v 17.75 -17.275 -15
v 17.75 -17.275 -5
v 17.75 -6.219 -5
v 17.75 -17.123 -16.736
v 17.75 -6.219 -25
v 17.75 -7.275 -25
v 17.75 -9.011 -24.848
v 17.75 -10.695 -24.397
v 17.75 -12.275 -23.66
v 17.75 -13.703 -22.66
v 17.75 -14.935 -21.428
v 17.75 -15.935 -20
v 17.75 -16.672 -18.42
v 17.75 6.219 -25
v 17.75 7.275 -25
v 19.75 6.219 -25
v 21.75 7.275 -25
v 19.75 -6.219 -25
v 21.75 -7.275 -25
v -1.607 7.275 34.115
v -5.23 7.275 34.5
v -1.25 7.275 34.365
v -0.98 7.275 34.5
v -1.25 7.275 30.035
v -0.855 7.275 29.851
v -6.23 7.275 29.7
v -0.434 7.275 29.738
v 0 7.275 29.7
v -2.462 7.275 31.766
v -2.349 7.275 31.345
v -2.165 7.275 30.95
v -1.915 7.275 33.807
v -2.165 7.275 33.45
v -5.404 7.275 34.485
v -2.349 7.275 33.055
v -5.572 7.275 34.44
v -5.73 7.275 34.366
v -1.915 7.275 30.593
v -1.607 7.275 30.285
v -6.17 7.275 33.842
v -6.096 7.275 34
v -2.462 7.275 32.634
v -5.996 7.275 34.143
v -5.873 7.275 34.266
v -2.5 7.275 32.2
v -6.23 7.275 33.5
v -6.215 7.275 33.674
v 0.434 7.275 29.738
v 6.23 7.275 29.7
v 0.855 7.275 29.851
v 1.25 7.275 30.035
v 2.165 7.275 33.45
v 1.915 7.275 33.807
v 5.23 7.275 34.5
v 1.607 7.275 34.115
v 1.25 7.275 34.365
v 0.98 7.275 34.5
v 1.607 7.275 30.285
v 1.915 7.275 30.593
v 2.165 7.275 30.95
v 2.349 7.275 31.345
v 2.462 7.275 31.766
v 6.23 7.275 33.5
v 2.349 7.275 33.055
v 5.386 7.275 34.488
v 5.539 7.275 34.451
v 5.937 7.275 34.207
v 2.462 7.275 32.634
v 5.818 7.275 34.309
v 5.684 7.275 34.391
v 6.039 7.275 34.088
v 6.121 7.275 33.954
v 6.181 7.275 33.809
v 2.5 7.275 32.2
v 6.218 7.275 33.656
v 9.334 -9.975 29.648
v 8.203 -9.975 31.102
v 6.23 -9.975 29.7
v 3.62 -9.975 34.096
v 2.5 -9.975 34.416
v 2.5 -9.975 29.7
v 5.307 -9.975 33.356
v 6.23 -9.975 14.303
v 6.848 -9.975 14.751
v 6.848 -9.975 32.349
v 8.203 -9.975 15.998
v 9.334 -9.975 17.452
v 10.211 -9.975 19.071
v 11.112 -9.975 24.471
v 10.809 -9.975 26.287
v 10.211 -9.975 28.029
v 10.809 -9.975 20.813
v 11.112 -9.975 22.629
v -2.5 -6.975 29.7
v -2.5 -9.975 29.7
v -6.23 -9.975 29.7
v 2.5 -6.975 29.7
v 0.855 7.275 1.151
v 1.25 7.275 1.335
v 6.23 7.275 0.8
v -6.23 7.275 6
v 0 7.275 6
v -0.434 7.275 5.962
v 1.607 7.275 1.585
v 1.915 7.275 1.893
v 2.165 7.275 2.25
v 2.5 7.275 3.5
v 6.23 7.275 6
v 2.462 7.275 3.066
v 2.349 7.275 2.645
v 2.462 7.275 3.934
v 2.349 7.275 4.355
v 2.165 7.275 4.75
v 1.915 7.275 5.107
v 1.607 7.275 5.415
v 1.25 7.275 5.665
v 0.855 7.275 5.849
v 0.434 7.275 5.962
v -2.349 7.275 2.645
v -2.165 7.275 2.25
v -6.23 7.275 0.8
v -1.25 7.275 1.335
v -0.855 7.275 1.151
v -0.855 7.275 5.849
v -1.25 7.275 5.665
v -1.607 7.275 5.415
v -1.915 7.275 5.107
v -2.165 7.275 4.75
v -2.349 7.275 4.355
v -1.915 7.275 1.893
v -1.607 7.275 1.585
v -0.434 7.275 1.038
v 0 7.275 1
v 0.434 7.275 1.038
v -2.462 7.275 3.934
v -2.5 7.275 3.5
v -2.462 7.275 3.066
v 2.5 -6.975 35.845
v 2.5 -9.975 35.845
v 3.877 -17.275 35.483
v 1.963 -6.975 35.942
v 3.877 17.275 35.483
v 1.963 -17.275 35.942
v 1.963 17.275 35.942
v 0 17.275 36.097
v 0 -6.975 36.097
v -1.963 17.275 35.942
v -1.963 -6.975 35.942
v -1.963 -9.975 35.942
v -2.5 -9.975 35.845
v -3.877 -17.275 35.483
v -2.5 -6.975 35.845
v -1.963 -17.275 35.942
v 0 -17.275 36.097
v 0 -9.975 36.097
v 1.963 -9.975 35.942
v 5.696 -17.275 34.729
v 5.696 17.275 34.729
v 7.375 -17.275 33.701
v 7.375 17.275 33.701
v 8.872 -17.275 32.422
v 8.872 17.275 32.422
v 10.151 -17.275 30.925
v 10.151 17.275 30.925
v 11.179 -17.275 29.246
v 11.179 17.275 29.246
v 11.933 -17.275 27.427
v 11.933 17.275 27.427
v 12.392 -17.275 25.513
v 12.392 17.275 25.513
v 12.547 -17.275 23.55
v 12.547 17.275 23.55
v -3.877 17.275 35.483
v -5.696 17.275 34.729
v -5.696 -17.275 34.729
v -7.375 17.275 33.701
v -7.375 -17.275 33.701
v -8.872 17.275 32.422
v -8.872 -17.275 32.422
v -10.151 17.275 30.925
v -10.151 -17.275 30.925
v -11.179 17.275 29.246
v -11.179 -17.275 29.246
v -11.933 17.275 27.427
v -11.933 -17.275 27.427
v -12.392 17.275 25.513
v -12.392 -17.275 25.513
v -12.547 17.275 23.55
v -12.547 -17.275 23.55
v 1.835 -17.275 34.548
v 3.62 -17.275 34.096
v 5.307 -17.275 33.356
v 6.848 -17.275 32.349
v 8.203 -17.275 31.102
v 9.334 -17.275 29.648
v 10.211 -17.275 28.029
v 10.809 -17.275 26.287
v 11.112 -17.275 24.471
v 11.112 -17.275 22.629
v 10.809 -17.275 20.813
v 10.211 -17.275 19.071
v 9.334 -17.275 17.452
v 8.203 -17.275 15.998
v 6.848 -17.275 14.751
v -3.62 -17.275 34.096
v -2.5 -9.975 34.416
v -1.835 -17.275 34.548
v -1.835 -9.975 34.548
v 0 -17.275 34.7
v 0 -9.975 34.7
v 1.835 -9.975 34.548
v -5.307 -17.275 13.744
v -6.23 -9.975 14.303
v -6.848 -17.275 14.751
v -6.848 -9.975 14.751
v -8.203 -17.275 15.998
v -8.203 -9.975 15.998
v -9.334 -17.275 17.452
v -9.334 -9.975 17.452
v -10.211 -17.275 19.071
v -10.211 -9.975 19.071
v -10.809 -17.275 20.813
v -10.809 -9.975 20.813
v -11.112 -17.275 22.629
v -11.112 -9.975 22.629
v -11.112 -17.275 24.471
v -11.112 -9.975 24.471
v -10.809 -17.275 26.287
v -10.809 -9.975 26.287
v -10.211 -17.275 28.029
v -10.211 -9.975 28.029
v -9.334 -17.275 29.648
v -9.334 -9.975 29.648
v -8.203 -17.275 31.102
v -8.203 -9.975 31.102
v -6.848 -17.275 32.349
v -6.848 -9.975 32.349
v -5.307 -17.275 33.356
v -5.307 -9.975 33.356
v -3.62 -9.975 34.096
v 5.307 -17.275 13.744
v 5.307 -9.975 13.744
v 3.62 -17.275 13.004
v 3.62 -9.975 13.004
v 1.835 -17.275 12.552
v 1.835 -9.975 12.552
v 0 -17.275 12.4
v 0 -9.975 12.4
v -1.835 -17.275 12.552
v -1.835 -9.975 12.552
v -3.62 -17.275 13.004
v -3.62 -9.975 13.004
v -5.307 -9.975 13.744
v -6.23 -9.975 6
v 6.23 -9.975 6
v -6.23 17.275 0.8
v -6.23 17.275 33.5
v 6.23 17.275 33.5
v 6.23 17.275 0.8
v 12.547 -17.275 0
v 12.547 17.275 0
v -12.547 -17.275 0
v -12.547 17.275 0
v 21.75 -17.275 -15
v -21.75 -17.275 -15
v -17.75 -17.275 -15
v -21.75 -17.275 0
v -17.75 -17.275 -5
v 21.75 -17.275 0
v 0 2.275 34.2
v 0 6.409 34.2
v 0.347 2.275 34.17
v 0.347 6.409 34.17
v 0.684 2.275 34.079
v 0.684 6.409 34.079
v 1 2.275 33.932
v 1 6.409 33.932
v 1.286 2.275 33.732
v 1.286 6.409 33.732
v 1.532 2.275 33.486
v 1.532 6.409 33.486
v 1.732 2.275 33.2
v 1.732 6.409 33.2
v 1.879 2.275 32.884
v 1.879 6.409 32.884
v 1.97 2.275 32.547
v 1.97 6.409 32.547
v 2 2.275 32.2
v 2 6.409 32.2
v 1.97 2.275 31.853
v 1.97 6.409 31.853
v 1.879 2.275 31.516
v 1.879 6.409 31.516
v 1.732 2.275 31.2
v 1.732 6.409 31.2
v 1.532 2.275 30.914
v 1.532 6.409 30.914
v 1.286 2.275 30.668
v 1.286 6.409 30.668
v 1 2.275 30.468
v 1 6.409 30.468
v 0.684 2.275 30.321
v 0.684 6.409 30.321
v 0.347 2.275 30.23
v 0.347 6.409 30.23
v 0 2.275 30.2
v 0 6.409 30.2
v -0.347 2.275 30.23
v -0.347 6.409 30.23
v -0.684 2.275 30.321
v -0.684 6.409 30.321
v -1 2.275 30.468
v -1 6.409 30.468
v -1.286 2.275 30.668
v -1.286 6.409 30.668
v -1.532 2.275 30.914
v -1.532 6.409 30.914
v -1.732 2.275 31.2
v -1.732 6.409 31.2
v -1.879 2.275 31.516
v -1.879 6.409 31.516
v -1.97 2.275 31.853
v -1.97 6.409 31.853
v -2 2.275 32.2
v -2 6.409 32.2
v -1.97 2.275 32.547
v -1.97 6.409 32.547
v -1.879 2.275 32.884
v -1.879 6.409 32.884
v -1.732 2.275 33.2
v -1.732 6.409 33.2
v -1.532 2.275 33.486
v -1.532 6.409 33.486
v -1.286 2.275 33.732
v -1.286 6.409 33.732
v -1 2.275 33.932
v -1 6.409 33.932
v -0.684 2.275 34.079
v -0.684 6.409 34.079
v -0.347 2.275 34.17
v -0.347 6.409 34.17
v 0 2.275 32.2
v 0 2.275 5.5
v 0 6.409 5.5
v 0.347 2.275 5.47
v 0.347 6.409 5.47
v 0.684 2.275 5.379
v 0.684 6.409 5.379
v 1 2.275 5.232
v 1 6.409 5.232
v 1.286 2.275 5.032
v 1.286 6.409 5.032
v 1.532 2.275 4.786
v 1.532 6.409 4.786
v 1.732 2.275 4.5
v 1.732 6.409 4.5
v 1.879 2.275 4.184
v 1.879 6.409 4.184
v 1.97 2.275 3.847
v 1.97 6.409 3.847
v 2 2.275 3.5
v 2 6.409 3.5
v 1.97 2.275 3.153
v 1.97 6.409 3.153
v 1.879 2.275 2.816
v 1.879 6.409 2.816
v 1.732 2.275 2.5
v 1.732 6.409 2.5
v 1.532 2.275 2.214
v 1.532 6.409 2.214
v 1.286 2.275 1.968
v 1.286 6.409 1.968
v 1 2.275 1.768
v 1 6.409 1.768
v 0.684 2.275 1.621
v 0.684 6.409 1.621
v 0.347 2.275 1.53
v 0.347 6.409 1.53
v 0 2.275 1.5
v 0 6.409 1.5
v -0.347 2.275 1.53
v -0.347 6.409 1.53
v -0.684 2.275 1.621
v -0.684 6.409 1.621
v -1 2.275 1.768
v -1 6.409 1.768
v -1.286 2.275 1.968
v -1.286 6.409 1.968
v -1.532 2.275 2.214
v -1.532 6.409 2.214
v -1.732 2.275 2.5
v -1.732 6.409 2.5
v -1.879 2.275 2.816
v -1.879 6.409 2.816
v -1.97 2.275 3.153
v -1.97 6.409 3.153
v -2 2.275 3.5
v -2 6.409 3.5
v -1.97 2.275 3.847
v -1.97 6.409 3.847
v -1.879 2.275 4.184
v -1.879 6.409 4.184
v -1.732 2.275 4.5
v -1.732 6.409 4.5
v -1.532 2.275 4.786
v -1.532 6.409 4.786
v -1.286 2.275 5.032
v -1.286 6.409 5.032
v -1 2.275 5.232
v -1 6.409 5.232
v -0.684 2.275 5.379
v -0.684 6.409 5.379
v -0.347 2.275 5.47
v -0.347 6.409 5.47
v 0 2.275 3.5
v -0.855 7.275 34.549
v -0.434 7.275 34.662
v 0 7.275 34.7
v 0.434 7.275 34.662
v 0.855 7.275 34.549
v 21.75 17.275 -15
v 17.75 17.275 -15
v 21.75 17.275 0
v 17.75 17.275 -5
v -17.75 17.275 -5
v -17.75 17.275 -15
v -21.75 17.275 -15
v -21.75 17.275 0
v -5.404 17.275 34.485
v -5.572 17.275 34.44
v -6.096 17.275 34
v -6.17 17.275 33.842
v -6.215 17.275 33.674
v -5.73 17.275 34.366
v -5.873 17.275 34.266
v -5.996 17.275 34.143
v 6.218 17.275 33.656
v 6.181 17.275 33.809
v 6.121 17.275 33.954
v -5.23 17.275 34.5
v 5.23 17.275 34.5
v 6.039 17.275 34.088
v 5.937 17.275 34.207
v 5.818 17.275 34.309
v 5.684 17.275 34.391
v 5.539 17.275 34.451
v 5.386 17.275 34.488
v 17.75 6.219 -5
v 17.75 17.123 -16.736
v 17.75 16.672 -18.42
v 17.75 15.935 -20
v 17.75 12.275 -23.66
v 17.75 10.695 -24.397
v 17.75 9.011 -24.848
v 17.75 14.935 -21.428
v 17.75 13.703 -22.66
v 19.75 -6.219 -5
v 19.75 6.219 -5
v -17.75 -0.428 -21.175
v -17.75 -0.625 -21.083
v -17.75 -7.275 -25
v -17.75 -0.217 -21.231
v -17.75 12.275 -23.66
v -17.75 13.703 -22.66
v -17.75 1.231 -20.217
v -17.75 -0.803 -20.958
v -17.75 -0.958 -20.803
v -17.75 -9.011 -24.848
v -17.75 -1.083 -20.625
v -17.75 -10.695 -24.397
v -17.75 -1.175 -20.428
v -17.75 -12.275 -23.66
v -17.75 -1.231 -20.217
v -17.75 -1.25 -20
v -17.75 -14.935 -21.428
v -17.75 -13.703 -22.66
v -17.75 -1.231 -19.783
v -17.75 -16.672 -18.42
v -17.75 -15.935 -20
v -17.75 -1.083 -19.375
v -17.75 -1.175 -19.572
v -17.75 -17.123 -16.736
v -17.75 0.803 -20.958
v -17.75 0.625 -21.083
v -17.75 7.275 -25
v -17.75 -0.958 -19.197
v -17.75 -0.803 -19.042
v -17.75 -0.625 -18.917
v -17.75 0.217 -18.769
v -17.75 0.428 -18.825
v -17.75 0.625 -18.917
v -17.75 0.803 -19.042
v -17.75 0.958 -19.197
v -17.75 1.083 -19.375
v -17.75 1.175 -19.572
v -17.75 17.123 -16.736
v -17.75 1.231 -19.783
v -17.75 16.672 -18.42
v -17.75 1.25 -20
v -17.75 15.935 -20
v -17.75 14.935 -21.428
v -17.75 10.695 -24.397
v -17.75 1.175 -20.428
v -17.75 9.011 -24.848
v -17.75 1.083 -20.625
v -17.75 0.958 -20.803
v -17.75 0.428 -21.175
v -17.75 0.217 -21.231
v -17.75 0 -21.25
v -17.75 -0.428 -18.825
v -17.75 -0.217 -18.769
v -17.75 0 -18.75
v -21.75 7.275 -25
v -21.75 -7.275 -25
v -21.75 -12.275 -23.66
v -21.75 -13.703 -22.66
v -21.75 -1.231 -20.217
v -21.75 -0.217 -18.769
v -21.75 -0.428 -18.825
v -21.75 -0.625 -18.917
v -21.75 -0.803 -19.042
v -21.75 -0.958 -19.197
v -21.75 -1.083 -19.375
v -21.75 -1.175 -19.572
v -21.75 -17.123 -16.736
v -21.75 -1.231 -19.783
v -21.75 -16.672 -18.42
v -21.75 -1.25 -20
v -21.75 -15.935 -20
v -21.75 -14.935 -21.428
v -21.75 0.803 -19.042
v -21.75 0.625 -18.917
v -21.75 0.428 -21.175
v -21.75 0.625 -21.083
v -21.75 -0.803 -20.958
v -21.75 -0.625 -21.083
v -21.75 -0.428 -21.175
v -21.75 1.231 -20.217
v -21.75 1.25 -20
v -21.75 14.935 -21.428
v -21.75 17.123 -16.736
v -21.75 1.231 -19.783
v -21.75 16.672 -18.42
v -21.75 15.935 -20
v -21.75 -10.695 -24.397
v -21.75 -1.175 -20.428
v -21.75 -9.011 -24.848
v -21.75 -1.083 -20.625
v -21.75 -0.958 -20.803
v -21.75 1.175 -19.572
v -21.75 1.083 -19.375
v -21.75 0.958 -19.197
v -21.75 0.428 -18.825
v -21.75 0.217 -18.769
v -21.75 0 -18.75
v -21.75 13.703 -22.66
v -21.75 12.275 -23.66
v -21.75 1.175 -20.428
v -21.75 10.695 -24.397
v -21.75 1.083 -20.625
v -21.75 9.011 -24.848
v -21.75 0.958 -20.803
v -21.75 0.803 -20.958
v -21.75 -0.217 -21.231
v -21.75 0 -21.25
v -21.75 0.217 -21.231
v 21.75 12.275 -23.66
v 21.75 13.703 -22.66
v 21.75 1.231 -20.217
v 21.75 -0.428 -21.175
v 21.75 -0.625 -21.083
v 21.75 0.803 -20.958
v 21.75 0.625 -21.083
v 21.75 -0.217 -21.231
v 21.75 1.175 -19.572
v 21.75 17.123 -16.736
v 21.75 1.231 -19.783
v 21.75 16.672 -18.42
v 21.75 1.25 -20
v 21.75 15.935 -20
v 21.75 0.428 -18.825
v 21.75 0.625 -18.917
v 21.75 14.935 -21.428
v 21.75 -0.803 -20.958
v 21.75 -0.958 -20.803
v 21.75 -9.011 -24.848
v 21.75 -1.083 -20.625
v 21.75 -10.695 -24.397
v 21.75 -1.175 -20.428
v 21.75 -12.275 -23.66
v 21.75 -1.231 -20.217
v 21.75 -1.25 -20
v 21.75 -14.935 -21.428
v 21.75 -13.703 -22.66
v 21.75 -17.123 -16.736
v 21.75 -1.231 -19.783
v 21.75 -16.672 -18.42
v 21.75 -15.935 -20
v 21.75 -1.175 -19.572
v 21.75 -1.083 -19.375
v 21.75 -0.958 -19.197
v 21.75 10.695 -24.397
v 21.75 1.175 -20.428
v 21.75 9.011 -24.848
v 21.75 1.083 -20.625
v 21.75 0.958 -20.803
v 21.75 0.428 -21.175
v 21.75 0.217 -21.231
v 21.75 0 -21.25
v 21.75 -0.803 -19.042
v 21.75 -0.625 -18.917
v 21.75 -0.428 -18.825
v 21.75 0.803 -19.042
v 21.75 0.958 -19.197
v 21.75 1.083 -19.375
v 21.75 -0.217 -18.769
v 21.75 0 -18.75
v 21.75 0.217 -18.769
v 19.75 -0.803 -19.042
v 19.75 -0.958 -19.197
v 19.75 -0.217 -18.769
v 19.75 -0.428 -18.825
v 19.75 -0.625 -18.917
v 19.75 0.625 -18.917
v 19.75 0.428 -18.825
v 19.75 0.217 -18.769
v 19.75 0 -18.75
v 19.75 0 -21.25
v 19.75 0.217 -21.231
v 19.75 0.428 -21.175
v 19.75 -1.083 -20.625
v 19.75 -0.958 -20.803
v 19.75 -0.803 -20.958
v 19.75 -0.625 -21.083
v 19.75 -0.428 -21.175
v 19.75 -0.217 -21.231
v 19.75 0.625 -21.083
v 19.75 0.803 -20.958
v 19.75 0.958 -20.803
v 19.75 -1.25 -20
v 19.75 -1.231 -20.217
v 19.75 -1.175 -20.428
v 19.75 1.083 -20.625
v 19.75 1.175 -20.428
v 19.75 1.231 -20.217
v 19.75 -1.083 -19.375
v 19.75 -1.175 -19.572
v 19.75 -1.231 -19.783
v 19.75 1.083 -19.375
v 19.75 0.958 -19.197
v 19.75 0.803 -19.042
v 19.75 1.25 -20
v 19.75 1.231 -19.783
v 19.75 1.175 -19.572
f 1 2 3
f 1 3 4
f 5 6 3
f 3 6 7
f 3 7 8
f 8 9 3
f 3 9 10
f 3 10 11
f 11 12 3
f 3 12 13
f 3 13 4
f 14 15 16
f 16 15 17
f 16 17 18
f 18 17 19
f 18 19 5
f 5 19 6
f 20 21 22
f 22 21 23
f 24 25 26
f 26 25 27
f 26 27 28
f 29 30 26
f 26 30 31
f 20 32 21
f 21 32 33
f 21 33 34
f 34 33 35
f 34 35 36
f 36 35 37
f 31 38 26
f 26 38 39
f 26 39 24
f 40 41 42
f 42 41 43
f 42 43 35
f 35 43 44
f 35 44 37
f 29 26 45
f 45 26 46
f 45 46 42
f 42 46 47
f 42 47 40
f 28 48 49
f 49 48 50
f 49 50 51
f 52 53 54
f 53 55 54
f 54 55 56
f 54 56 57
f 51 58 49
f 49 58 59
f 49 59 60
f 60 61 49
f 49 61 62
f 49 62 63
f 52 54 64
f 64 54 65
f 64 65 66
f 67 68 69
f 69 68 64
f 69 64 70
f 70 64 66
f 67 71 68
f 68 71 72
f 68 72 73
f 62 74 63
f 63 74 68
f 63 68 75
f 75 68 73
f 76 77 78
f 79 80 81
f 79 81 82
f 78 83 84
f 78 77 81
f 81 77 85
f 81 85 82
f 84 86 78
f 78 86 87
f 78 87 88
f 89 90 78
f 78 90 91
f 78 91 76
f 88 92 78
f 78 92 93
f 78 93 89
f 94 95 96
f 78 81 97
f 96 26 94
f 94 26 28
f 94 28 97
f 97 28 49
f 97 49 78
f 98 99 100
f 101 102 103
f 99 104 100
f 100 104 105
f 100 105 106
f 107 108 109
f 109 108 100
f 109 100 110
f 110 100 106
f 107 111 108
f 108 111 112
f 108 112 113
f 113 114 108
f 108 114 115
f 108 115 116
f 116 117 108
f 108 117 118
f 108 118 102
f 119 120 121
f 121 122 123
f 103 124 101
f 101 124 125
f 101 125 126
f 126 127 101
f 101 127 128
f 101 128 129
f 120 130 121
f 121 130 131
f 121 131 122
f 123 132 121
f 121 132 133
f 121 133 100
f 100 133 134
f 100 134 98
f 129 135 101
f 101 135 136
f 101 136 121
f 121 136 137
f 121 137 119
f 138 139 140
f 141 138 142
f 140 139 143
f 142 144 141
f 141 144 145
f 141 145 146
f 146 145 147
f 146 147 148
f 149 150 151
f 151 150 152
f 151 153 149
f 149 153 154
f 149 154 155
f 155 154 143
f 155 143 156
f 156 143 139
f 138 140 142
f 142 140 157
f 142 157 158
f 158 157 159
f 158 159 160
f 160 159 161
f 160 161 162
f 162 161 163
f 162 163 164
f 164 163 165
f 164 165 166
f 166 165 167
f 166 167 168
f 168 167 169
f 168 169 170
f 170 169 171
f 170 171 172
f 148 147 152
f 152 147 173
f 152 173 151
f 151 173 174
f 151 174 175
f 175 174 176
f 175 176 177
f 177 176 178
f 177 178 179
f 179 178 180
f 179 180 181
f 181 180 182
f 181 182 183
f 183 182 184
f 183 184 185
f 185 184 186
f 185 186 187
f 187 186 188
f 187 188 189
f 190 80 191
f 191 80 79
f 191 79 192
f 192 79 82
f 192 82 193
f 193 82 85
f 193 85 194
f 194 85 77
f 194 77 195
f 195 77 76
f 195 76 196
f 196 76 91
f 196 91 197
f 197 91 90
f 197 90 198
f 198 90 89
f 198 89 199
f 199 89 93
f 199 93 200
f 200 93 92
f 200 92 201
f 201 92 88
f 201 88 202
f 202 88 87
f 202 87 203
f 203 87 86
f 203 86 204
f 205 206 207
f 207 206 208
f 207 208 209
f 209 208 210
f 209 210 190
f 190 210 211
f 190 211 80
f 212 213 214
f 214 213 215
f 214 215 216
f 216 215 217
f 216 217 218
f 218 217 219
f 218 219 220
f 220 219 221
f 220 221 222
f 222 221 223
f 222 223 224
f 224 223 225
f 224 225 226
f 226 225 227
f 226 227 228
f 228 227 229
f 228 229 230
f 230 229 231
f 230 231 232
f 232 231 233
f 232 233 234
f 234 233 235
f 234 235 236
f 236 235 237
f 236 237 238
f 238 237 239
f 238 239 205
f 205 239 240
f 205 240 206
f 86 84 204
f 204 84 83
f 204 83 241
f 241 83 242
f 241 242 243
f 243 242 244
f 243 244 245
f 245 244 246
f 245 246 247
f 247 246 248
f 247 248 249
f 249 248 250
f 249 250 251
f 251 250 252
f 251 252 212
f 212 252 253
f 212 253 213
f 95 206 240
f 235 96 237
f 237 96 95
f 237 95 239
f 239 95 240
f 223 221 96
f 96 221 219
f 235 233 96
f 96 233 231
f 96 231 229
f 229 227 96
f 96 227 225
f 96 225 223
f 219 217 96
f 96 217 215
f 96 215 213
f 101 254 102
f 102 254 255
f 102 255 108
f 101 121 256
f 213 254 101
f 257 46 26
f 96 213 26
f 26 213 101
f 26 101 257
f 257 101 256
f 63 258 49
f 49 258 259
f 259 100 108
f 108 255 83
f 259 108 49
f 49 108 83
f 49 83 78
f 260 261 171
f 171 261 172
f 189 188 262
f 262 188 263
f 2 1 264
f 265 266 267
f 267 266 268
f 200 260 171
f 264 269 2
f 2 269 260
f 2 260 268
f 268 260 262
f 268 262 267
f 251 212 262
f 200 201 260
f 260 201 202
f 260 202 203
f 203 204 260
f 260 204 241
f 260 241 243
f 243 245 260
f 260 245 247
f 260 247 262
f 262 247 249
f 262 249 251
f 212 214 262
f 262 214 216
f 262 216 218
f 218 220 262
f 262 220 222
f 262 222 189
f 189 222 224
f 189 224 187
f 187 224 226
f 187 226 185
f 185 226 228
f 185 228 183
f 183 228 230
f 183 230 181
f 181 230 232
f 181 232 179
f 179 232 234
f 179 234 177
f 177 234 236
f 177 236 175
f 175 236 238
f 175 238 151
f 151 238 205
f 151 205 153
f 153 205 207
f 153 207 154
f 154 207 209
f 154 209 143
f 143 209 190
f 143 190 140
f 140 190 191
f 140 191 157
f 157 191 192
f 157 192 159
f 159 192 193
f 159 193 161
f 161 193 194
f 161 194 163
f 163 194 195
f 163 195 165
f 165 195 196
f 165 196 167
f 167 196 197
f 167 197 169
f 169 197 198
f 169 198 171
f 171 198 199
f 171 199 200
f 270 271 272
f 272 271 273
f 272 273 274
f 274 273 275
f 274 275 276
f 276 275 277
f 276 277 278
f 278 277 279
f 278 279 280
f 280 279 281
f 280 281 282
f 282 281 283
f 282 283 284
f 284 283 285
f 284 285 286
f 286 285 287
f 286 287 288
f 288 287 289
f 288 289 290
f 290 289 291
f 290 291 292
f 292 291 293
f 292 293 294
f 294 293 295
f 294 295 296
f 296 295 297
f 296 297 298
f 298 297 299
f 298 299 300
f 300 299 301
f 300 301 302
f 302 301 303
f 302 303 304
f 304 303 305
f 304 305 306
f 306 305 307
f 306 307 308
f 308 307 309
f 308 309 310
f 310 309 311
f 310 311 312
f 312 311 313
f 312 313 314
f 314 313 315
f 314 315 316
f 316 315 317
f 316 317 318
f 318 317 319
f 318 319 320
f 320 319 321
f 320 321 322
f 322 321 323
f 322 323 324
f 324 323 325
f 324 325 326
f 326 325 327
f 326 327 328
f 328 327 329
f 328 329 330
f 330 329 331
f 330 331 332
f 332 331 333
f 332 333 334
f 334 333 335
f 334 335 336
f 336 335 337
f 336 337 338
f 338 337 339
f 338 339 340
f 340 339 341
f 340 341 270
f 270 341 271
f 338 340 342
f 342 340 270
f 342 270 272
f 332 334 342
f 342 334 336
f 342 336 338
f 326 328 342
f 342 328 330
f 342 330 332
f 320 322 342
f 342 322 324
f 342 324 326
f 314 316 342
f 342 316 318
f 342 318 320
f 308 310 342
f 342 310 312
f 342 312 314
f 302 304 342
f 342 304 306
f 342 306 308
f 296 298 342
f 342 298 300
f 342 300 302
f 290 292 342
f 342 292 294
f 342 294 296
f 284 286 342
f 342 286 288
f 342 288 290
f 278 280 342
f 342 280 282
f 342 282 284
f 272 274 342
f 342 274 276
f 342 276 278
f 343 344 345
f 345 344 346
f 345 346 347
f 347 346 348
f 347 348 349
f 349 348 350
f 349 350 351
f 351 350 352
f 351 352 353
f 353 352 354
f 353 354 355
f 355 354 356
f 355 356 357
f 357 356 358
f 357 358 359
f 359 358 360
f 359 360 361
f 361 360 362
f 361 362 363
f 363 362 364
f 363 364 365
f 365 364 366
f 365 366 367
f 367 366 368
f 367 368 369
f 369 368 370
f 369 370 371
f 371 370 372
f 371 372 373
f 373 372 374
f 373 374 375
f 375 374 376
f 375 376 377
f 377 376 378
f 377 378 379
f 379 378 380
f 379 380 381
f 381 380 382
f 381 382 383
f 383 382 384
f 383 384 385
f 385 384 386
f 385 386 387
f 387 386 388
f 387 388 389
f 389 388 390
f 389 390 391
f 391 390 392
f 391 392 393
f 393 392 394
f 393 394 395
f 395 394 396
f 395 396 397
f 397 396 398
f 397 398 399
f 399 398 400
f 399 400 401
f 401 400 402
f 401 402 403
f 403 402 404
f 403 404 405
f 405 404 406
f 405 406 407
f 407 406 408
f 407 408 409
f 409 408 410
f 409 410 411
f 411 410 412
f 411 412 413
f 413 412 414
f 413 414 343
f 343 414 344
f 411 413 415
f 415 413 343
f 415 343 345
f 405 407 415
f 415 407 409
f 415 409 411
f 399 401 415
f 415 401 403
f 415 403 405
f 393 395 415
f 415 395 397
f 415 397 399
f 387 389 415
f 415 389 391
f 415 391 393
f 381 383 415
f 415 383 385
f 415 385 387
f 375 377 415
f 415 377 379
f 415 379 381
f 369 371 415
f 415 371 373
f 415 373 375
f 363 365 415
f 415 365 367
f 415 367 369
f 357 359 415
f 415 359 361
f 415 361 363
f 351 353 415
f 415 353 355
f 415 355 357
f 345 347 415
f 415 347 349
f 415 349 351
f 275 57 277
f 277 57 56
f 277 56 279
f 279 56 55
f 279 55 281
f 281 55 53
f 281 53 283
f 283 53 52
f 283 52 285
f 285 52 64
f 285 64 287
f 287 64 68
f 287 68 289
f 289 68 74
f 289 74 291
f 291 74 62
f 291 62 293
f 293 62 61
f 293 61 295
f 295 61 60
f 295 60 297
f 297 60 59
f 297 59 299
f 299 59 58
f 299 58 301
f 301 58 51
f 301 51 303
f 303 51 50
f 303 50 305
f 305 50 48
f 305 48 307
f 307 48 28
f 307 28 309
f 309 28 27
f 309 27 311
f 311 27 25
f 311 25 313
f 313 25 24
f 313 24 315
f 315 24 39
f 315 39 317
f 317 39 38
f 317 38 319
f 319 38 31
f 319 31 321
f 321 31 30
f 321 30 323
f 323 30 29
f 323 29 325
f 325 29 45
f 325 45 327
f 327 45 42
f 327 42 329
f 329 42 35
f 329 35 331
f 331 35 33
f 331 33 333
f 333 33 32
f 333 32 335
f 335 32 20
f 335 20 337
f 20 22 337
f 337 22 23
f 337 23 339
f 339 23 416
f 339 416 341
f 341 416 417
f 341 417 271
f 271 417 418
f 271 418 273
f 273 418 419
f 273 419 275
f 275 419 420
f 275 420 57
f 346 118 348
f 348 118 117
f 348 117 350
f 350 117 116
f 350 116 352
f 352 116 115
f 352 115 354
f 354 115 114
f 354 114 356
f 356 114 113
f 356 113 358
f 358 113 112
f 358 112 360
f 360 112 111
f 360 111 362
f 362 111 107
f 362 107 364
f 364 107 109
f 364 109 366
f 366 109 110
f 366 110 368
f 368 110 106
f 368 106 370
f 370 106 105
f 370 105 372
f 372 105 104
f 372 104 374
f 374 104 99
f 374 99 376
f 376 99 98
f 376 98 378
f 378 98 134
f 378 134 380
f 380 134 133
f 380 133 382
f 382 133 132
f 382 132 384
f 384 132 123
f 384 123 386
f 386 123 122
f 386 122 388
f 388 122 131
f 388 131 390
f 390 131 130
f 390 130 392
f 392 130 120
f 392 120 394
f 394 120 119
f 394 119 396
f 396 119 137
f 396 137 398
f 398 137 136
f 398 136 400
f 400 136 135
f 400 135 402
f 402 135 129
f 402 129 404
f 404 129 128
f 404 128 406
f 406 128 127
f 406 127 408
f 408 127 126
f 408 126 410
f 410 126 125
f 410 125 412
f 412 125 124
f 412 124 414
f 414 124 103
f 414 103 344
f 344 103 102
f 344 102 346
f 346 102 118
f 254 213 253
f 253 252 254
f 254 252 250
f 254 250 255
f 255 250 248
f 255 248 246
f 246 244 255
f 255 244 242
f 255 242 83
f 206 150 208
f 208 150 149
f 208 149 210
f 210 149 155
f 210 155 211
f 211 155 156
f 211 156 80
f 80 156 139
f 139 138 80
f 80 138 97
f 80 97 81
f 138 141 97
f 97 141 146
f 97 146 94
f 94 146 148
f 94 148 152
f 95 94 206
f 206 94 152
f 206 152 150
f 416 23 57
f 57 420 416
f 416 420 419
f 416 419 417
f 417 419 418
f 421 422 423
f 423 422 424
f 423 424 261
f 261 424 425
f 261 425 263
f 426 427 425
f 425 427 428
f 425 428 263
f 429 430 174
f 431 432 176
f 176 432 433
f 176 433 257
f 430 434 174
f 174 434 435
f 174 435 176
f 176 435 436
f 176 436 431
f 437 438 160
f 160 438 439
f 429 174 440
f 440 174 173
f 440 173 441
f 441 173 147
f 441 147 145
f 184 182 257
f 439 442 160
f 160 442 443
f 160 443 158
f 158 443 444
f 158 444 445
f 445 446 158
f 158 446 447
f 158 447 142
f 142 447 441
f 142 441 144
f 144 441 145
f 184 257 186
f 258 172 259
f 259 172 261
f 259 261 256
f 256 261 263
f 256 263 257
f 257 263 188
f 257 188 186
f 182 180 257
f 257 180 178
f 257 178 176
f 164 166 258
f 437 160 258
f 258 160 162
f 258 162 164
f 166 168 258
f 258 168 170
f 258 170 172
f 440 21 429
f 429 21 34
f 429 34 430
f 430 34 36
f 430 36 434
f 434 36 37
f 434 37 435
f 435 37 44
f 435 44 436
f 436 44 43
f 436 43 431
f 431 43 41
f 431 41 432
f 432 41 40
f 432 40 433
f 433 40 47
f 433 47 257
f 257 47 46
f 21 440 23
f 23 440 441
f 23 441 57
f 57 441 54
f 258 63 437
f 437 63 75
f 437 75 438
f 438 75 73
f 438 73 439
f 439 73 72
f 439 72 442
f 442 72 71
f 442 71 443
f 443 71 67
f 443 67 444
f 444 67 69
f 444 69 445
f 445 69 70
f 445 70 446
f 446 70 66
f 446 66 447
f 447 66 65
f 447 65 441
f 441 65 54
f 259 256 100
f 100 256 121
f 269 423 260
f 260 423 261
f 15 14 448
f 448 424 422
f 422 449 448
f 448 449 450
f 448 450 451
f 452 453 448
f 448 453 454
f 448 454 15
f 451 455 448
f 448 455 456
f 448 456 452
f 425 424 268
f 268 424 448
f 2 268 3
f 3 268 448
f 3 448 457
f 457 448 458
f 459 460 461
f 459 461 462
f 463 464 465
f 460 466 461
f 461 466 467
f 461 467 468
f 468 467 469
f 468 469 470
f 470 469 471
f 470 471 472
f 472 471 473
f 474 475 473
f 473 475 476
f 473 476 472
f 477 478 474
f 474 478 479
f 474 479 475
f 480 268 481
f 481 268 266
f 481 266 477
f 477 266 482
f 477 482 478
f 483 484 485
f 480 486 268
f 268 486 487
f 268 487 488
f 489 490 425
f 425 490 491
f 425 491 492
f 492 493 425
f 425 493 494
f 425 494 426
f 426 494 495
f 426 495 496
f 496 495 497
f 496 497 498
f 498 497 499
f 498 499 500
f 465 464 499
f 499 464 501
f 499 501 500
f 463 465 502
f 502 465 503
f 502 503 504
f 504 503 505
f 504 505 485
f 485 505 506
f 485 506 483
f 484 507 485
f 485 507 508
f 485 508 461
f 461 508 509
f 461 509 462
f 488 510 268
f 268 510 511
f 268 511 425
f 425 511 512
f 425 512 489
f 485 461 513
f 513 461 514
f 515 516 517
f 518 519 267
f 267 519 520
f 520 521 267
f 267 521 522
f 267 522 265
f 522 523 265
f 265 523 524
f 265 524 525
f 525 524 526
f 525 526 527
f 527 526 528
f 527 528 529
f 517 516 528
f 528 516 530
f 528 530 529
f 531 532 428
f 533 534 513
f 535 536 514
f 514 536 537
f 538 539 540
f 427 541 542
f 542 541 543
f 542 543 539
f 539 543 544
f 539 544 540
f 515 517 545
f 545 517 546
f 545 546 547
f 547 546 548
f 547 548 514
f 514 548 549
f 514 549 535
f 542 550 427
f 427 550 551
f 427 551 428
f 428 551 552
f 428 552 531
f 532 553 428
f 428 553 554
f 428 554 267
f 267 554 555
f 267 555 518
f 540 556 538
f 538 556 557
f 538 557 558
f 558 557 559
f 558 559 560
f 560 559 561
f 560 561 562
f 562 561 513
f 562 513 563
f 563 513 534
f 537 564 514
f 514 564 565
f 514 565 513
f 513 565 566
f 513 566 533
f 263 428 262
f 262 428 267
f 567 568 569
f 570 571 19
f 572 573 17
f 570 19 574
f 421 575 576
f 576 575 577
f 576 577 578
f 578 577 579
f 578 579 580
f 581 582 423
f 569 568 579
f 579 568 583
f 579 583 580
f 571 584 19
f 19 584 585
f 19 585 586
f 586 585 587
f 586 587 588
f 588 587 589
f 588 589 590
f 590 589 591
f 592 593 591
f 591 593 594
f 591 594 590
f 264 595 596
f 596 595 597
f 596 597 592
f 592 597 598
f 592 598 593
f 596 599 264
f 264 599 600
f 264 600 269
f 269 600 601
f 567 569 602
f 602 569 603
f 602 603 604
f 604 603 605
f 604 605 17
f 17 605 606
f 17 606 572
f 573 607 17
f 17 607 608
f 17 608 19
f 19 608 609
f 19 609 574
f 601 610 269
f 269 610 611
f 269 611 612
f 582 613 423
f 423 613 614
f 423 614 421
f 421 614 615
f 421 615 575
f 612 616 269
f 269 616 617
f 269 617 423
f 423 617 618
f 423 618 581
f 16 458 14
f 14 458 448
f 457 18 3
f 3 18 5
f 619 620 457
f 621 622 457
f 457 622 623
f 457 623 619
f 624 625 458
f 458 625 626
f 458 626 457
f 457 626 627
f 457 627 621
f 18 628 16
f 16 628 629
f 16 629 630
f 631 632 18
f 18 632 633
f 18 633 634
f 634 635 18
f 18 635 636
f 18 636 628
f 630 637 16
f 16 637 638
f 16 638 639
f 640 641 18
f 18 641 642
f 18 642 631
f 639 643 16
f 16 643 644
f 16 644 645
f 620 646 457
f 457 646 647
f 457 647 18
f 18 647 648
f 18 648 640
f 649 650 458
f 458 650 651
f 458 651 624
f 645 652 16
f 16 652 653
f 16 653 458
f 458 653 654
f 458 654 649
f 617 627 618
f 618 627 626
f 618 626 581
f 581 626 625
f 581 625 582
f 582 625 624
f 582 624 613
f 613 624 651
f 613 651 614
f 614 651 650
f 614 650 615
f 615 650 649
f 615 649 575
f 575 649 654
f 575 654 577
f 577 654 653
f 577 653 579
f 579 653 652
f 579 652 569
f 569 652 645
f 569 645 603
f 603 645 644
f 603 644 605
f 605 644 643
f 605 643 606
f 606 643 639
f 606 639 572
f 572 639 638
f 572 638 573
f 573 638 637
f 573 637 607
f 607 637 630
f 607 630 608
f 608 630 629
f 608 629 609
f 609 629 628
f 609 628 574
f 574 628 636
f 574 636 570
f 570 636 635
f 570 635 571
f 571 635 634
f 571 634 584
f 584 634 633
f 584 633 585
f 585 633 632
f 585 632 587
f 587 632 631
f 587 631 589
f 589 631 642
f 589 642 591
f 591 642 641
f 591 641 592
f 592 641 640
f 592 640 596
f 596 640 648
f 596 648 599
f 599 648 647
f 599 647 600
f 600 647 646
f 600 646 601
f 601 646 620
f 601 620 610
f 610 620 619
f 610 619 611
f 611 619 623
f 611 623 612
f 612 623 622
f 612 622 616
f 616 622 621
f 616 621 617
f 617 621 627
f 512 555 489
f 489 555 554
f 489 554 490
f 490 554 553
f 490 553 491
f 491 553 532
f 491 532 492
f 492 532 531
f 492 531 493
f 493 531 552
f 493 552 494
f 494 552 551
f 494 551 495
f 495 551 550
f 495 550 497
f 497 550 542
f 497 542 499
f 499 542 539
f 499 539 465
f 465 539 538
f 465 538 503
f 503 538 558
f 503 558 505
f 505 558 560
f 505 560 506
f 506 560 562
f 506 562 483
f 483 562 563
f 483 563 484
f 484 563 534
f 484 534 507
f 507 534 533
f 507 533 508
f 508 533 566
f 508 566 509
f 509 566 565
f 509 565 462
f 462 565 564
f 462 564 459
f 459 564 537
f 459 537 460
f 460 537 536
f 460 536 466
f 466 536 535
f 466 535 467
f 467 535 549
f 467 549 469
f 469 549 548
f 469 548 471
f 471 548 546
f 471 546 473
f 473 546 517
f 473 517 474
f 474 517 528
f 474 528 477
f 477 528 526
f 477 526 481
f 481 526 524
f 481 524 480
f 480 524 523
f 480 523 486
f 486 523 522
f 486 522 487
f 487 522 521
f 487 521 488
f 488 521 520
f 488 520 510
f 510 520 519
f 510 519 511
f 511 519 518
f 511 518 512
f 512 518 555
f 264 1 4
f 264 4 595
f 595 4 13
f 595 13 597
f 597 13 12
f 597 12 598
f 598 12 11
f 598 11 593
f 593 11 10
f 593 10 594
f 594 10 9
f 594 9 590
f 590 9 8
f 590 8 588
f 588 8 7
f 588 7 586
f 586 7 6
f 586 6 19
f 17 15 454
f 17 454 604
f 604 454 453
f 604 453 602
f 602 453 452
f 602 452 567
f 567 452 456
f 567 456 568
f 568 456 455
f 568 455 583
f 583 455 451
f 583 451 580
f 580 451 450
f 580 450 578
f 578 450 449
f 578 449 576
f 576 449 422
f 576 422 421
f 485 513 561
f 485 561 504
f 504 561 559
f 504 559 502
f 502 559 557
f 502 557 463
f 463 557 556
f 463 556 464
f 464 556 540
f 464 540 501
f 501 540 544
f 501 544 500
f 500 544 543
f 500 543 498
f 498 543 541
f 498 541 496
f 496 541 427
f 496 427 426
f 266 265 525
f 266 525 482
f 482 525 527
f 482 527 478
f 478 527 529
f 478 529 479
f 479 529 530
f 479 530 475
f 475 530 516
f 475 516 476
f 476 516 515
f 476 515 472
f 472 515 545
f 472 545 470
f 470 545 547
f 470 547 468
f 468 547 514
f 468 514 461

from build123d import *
from OCP.BRepFilletAPI import BRepFilletAPI_MakeChamfer

# Parameters (mm, degrees)
SKETCH4_W                = 12.46
SKETCH4_H                = 17.25
BOSS_EXTRUDE3_DEPTH      = 6
BOSS_EXTRUDE6_DEPTH      = 7.3
BOSS_EXTRUDE6_DEPTH_BACK = 17.25
SKETCH8_R                = 12.546781182
SKETCH8_R_2              = 11.15
BOSS_EXTRUDE4_DEPTH      = 17.25
SKETCH6_R                = 2
CUT_EXTRUDE1_DEPTH       = 5
CHAMFER1_SIZE            = 0.5
CHAMFER1_SIZE_2          = 0.866025404
SKETCH10_W               = 12.46
SKETCH10_H               = 23.7
CUT_EXTRUDE3_DEPTH       = 17.25
CUT_EXTRUDE4_REACH       = 43.938
SKETCH11_W               = 5
SKETCH11_H               = 3
BOSS_EXTRUDE7_START      = -7.3
BOSS_EXTRUDE7_DEPTH      = 7.3
BOSS_EXTRUDE9_START      = 10
BOSS_EXTRUDE9_DEPTH      = 10
BOSS_EXTRUDE10_DEPTH     = 34.55
SKETCH18_W               = 20
SKETCH18_H               = 12.438292938
CUT_EXTRUDE5_DEPTH       = 2
CUT_EXTRUDE6_DEPTH       = 58.651133872
CUT_EXTRUDE6_DEPTH_BACK  = 58.651133872
SKETCH19_R               = 1.25
FILLET1_R                = 10


with BuildPart() as part:
    # Sketch4 → Boss-Extrude3 (new body)
    with BuildSketch(Plane.XY):
        with Locations((0, -1.35)):
            Rectangle(SKETCH4_W, SKETCH4_H)
    extrude(amount=BOSS_EXTRUDE3_DEPTH)



with BuildPart() as body_2:
    # Sketch8 → Boss-Extrude6 (new, two sides: drawn at the far end of the back side and taken through both)
    with BuildSketch(Plane(origin=(0, -9.975, 0), x_dir=(-1, 0, 0), z_dir=(0, -1, 0)).offset(-BOSS_EXTRUDE6_DEPTH_BACK)):
        with Locations(Location((0, -23.55, 0), (0, 0, 90))):
            Circle(SKETCH8_R)
        with Locations(Location((0, -23.55, 0), (0, 0, 90))):
            Circle(SKETCH8_R_2, mode=Mode.SUBTRACT)
    extrude(amount=BOSS_EXTRUDE6_DEPTH + BOSS_EXTRUDE6_DEPTH_BACK)


with BuildPart() as part_1:
    add(part.part)

    add(body_2.part)  # Boss-Extrude4 merges body 2
    # Sketch5 → Boss-Extrude4 (add)
    with BuildSketch(Plane(origin=(0, 7.275, 0), x_dir=(1, 0, 0), z_dir=(0, 1, 0))):
        with BuildLine():
            Line((12.546781182, -23.55), (12.546781182, 0))
            Line((12.546781182, 0), (6.23, 0))
            Line((6.23, 0), (6.23, -29.7))
            Line((6.23, -29.7), (-6.23, -29.7))
            Line((-6.23, -29.7), (-6.23, 0))
            Line((-6.23, 0), (-12.546781182, 0))
            Line((-12.546781182, 0), (-12.546781182, -23.55))
            ThreePointArc((-12.546781182, -23.55), (0, -36.096781182), (12.546781182, -23.55))
        make_face()
    extrude(amount=-BOSS_EXTRUDE4_DEPTH)

    # Sketch6 → Cut-Extrude1 (cut)
    with BuildSketch(Plane(origin=(0, 7.275, 0), x_dir=(1, 0, 0), z_dir=(0, 1, 0))):
        with Locations(Location((0, -3.5, 0), (0, 0, 270))):
            Circle(SKETCH6_R)
        with Locations(Location((0, -32.2, 0), (0, 0, 270))):
            Circle(SKETCH6_R)
    extrude(amount=-CUT_EXTRUDE1_DEPTH, mode=Mode.SUBTRACT)

    # Chamfer1
    chamfer1_edges_1 = [part_1.edges().sort_by_distance(p)[0] for p in [
        (0, 7.275, 1.5),
    ]]
    chamfer1_side_1 = [part_1.faces().sort_by_distance(p)[0] for p in [
        (0, 7.275, 1.49),
    ]]
    chamfer1_edges_2 = [part_1.edges().sort_by_distance(p)[0] for p in [
        (0, 7.275, 30.2),
    ]]
    chamfer1_side_2 = [part_1.faces().sort_by_distance(p)[0] for p in [
        (0, 7.275, 30.19),
    ]]
    chamfer1 = BRepFilletAPI_MakeChamfer(part_1.part.solid().wrapped)
    for e in chamfer1_edges_1:
        chamfer1.Add(CHAMFER1_SIZE - 0.0001, CHAMFER1_SIZE_2 - 0.0001, e.wrapped, chamfer1_side_1[0].wrapped)
    for e in chamfer1_edges_2:
        chamfer1.Add(CHAMFER1_SIZE - 0.0001, CHAMFER1_SIZE_2 - 0.0001, e.wrapped, chamfer1_side_2[0].wrapped)
    add(Compound.cast(chamfer1.Shape()), mode=Mode.REPLACE)  # a hair under: the kernel refuses the full size

    # Sketch10 → Cut-Extrude3 (cut)
    with BuildSketch(Plane(origin=(0, 7.275, 0), x_dir=(1, 0, 0), z_dir=(0, 1, 0))):
        with Locations((0, -17.85)):
            Rectangle(SKETCH10_W, SKETCH10_H)
    extrude(amount=-CUT_EXTRUDE3_DEPTH, mode=Mode.SUBTRACT)

    # Sketch11 → Cut-Extrude4 (cut, up to next)
    with BuildSketch(Plane.XY.offset(36.096781182), mode=Mode.PRIVATE) as cut_extrude4_sk1:
        with Locations((0, -8.475)):
            Rectangle(SKETCH11_W, SKETCH11_H)
    cut_extrude4_tool1 = extrude(cut_extrude4_sk1.sketch, amount=-CUT_EXTRUDE4_REACH, mode=Mode.PRIVATE) & part_1.part
    add(cut_extrude4_tool1.solids().sort_by_distance((0, -8.475, 36.096781))[0], mode=Mode.SUBTRACT)

    # Sketch13 → Boss-Extrude7 (add)
    with BuildSketch(Plane.XZ.offset(17.275).offset(BOSS_EXTRUDE7_START)):
        with BuildLine():
            Line((-12.546781182, 23.55), (-12.546781182, 0))
            Line((-12.546781182, 0), (12.546781182, 0))
            Line((12.546781182, 0), (12.546781182, 23.55))
            ThreePointArc((12.546781182, 23.55), (0, 11.003218818), (-12.546781182, 23.55))
        make_face()
    extrude(amount=BOSS_EXTRUDE7_DEPTH)

    # Sketch15 → Boss-Extrude9 (add)
    with BuildSketch(Plane(origin=(0, 7.275, 0), x_dir=(1, 0, 0), z_dir=(0, 1, 0)).offset(BOSS_EXTRUDE9_START)):
        with BuildLine():
            Line((-12.546781182, 0), (12.546781182, 0))
            Line((12.546781182, 0), (12.546781182, -23.55))
            ThreePointArc((12.546781182, -23.55), (0, -36.096781182), (-12.546781182, -23.55))
            Line((-12.546781182, -23.55), (-12.546781182, 0))
        make_face()
        with BuildLine():
            Line((-6.23, -0.8), (6.23, -0.8))
            Line((6.23, -0.8), (6.23, -33.5))
            ThreePointArc((6.23, -33.5), (5.937106781, -34.207106781), (5.23, -34.5))
            Line((5.23, -34.5), (-5.23, -34.5))
            ThreePointArc((-5.23, -34.5), (-5.937106781, -34.207106781), (-6.23, -33.5))
            Line((-6.23, -33.5), (-6.23, -0.8))
        make_face(mode=Mode.SUBTRACT)
    extrude(amount=-BOSS_EXTRUDE9_DEPTH)

    # Sketch17 → Boss-Extrude10 (add)
    with BuildSketch(Plane(origin=(0, 17.275, 0), x_dir=(1, 0, 0), z_dir=(0, 1, 0))):
        Polygon((21.75, 25), (21.75, 0), (-21.75, 0), (-21.75, 25), (-17.75, 25), (-17.75, 5), (17.75, 5), (17.75, 25), align=None)
    extrude(amount=-BOSS_EXTRUDE10_DEPTH)

    # Sketch18 → Cut-Extrude5 (cut)
    with BuildSketch(Plane.ZY.offset(-17.75)):
        with Locations((-15, 0)):
            Rectangle(SKETCH18_W, SKETCH18_H)
    extrude(amount=-CUT_EXTRUDE5_DEPTH, mode=Mode.SUBTRACT)

    # Sketch19 → Cut-Extrude6 (cut, two sides: drawn at the far end of the back side and taken through both)
    with BuildSketch(Plane.ZY.offset(-19.75).offset(-CUT_EXTRUDE6_DEPTH_BACK)):
        with Locations((-20, 0)):
            Circle(SKETCH19_R)
    extrude(amount=CUT_EXTRUDE6_DEPTH + CUT_EXTRUDE6_DEPTH_BACK, mode=Mode.SUBTRACT)

    # Fillet1
    fillet1_edges = [part_1.edges().sort_by_distance(p)[0] for p in [
        (19.75, 17.275, -25),
        (-19.75, 17.275, -25),
        (-19.75, -17.275, -25),
        (19.75, -17.275, -25),
    ]]
    fillet(fillet1_edges, radius=FILLET1_R)


solid = part_1.part
